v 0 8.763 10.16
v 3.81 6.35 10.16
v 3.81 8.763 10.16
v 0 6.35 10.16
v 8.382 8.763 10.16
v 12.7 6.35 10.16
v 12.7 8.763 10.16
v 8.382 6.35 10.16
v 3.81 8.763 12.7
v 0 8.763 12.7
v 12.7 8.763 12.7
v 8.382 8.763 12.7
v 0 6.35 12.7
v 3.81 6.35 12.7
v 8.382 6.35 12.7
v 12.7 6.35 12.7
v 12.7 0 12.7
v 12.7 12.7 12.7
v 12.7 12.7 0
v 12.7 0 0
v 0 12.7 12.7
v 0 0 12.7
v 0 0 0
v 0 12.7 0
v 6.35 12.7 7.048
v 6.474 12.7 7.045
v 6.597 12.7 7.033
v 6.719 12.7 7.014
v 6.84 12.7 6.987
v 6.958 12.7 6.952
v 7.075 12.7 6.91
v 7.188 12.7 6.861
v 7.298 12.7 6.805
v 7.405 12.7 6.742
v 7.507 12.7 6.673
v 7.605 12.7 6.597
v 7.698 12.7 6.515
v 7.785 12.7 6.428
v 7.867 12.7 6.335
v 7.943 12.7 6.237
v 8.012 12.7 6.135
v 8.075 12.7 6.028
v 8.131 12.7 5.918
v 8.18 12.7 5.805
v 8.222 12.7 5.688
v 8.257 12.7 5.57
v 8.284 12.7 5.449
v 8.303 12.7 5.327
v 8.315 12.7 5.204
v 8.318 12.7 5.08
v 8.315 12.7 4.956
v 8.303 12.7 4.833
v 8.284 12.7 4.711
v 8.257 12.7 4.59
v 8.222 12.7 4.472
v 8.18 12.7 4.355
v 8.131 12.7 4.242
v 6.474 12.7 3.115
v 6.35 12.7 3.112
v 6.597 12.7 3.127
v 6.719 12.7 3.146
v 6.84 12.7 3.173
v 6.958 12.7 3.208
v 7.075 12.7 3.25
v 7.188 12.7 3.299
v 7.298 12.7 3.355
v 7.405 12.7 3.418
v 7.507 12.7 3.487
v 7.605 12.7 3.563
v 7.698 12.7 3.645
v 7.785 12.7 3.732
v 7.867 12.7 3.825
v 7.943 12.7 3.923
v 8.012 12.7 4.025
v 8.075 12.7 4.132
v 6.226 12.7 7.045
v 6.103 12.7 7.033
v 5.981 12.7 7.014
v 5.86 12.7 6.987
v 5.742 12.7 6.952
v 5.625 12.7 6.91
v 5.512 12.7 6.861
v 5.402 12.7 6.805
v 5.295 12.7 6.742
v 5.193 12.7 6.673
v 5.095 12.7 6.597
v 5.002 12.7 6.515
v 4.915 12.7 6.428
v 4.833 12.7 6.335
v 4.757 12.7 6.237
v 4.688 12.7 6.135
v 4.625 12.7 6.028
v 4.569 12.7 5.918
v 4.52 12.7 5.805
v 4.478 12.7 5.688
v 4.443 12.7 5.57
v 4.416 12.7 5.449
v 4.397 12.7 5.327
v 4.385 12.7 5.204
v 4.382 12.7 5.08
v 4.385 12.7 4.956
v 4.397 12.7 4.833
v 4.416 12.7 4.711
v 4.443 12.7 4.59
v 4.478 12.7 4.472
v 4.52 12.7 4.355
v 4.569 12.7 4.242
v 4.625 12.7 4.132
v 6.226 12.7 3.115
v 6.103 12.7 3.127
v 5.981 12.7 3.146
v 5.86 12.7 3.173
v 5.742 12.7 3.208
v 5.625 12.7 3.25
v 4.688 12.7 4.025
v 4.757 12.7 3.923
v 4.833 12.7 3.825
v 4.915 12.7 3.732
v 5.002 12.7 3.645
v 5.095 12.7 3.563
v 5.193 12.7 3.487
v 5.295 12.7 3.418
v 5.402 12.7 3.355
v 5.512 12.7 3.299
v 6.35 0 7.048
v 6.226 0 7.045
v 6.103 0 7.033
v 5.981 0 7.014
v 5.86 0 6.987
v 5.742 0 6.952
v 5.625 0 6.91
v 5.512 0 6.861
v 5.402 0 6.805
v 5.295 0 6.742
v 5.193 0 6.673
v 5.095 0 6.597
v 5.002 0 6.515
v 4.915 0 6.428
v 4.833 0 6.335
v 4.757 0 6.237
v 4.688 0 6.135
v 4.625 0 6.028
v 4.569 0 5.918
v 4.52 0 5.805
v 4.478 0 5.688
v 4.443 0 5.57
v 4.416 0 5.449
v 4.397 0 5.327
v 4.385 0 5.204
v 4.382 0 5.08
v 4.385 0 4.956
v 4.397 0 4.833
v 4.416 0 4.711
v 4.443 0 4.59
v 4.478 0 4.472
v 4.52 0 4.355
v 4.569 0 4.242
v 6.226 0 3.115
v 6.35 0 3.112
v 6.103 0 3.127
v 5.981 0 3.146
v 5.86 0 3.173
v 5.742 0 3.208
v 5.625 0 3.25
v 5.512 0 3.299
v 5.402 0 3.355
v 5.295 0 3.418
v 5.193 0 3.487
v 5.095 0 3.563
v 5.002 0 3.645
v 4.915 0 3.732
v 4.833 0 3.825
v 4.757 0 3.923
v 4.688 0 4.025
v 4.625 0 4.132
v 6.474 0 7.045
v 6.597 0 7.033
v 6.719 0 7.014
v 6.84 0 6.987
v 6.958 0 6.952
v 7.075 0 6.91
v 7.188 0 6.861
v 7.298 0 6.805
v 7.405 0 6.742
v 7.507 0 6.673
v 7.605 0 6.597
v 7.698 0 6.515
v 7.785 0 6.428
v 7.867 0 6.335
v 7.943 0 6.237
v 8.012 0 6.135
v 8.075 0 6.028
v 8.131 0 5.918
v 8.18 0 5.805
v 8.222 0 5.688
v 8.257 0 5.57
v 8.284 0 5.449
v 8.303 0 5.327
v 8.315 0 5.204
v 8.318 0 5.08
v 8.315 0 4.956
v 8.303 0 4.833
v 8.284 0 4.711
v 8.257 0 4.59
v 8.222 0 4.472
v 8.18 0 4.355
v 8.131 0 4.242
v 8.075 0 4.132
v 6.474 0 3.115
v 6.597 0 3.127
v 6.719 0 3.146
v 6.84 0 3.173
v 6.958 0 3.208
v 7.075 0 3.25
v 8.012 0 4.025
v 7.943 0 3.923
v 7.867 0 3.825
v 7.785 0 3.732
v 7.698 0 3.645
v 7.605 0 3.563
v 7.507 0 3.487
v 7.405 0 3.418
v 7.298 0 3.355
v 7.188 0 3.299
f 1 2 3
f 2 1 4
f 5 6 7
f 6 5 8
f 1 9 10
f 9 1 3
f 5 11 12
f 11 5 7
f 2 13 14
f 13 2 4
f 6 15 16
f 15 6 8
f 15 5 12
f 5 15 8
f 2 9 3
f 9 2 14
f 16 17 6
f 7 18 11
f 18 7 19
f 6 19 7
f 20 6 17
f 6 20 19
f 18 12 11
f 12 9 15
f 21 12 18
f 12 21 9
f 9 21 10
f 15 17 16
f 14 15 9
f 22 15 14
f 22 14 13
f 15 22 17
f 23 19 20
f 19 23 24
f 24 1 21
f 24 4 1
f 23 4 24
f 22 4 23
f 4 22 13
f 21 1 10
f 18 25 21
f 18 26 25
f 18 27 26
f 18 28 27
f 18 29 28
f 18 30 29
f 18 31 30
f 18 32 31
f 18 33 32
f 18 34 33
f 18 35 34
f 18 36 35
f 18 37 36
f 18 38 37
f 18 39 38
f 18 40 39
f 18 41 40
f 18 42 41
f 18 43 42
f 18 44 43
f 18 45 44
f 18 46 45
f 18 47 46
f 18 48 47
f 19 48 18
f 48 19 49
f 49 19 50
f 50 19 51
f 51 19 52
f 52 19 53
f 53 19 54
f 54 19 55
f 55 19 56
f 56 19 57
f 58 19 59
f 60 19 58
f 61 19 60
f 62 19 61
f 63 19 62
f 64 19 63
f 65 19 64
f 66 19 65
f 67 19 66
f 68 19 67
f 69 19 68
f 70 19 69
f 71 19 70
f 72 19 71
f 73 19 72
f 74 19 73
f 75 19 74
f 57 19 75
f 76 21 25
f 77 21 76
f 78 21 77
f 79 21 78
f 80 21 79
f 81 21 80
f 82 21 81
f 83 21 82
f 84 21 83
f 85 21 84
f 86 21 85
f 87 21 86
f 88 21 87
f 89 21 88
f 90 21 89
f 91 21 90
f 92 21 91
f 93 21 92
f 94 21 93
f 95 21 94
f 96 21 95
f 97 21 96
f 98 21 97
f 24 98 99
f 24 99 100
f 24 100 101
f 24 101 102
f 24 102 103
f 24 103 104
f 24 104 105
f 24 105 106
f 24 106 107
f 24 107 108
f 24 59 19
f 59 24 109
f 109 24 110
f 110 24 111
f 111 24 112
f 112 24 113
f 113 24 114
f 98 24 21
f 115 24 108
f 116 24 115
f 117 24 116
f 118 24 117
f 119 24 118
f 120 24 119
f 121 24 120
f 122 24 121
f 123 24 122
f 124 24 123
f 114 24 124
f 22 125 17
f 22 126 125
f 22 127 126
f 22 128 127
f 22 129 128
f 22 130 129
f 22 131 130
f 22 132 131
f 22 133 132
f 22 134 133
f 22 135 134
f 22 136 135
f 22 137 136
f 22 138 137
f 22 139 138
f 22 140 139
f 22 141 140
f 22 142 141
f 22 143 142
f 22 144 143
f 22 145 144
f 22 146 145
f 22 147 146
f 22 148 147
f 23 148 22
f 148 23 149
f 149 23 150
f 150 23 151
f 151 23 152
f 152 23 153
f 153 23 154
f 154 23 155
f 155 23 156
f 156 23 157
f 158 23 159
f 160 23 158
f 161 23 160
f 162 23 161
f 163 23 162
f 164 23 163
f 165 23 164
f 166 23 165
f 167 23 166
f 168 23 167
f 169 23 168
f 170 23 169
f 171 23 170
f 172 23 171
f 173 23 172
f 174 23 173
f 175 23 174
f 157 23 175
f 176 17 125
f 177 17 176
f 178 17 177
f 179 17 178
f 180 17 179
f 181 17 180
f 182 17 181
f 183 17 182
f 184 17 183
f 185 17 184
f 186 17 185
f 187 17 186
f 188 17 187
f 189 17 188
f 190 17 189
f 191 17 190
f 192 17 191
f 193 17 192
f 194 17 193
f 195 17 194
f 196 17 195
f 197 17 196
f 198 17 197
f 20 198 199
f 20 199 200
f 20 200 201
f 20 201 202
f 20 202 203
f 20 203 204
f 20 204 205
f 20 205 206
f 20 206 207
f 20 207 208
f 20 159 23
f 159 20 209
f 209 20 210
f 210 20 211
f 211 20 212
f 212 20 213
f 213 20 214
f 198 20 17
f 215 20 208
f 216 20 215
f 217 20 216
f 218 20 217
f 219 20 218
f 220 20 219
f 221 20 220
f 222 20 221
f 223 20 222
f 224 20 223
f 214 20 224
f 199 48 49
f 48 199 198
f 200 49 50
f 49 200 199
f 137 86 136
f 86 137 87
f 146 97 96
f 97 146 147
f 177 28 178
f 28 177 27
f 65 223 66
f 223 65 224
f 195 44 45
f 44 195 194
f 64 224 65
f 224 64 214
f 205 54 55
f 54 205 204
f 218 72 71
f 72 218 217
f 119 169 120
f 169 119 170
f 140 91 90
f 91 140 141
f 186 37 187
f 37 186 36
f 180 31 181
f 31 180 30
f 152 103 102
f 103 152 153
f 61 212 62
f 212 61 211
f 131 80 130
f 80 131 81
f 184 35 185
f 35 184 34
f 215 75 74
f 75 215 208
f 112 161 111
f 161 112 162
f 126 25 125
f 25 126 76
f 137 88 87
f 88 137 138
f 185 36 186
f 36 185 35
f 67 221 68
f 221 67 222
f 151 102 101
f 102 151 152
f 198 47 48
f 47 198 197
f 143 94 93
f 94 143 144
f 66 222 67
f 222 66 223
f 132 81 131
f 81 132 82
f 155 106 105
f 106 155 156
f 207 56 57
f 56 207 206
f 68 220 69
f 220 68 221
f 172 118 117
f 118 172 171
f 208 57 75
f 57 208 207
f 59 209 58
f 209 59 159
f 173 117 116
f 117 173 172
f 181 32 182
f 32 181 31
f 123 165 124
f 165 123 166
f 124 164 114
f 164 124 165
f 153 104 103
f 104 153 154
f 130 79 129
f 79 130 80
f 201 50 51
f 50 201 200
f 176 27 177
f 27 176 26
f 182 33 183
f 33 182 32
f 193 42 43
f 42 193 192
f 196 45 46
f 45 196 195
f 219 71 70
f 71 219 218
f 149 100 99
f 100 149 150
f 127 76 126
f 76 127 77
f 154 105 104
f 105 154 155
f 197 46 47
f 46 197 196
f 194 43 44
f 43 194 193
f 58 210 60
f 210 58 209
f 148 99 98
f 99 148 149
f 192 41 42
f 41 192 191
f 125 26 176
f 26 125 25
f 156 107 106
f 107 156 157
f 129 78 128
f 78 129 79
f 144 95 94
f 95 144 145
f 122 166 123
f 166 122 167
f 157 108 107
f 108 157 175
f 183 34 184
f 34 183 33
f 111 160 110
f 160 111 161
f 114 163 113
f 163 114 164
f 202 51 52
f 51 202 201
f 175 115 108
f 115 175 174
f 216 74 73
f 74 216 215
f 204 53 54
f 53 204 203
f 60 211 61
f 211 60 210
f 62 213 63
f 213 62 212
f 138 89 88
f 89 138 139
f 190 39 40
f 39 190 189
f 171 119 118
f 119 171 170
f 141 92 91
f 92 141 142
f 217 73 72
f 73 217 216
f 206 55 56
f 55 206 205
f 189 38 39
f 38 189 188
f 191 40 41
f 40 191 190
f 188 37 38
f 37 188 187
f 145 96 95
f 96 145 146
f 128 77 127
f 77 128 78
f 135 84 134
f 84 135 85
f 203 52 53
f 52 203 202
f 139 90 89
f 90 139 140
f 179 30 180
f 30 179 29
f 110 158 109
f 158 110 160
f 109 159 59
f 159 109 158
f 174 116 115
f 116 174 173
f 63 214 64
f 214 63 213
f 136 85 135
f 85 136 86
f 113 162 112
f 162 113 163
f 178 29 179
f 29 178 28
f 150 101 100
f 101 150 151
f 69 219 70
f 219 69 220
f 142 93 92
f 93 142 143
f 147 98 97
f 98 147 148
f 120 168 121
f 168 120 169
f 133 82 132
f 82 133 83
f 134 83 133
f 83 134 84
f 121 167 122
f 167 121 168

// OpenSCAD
/* OpenSCAD file to make a pair of rails to hold
 * one of my Antminer X9 boards
 * Tom Trebisky  5-10-2026
 */

/* I design this so it will print slot upwards
 */

right = true;

mmpi = 25.4;
function mm(x) = x * mmpi;

l = mm ( 0.5 );		// length along the PCB
h = mm ( 0.5 );		// thickness
w = mm ( 0.5 );		// perpendicular to card edge
up = mm ( 0.4 );
half = mm ( 0.25 );

// [left/right, front/back, up/down ]

slice = mm ( 0.095 );
big1 = mm ( 1.0 );
big2 = mm ( 2.0 );
big3 = mm ( 2.0 );

// d_diam = mm ( 3.0 / 16.0 );
d_diam = mm ( 0.155 );
d_len = w + mm ( 1.5 );
// d_shift = mm ( -0.5 );
// d_shift = mm ( 0.0 );
d_up = mm ( 0.2 );
// d_over = d_up + d_diam/2.0;
d_over = mm ( 0.25 );

// locations of drill holes
x1 = mm ( 0.4 );
y1 = mm ( 0.4 );

/* This dimension is critical, as it is the piece
 * that fits into the slot on the PCB.
 * It comes out 0.210 when printed as 0.20
 * I measure carefully and see 0.205, but the
 * corners are a bit rounded.
 * I remeasure the slot and get 0.185
 */
// bite_l = mm ( 0.20 );
bite_l = mm ( 0.180 );

bite_pos = mm ( 0.15 );

module drill (x, y) {
    // translate ( [ x, y, d_shift] )
	rotate ( [ 90.0, 0.0, 0.0 ] )
    translate ( [ x, y, 0.0 ] )
    translate ( [ 0.0, 0.0, -d_len/2.0 ] )
    cylinder ( d=d_diam, h=d_len, $fn=100 );
}

module rail () {
		cube ( [ l, h, w ] );
}

module slab () {
 	difference () {
		translate ( [ -big1, half, up ] )
			cube ( [ big2, slice, big1 ] );
		bite ();
	}
}

module bite () {
	translate ( [ bite_pos, 0.0, 0.0 ] )
		cube ( [ bite_l, big1, big1 ] );
}

// union () {
difference () {
	rail ();
	slab ();
	drill ( d_over, d_up );
}

// THE END
